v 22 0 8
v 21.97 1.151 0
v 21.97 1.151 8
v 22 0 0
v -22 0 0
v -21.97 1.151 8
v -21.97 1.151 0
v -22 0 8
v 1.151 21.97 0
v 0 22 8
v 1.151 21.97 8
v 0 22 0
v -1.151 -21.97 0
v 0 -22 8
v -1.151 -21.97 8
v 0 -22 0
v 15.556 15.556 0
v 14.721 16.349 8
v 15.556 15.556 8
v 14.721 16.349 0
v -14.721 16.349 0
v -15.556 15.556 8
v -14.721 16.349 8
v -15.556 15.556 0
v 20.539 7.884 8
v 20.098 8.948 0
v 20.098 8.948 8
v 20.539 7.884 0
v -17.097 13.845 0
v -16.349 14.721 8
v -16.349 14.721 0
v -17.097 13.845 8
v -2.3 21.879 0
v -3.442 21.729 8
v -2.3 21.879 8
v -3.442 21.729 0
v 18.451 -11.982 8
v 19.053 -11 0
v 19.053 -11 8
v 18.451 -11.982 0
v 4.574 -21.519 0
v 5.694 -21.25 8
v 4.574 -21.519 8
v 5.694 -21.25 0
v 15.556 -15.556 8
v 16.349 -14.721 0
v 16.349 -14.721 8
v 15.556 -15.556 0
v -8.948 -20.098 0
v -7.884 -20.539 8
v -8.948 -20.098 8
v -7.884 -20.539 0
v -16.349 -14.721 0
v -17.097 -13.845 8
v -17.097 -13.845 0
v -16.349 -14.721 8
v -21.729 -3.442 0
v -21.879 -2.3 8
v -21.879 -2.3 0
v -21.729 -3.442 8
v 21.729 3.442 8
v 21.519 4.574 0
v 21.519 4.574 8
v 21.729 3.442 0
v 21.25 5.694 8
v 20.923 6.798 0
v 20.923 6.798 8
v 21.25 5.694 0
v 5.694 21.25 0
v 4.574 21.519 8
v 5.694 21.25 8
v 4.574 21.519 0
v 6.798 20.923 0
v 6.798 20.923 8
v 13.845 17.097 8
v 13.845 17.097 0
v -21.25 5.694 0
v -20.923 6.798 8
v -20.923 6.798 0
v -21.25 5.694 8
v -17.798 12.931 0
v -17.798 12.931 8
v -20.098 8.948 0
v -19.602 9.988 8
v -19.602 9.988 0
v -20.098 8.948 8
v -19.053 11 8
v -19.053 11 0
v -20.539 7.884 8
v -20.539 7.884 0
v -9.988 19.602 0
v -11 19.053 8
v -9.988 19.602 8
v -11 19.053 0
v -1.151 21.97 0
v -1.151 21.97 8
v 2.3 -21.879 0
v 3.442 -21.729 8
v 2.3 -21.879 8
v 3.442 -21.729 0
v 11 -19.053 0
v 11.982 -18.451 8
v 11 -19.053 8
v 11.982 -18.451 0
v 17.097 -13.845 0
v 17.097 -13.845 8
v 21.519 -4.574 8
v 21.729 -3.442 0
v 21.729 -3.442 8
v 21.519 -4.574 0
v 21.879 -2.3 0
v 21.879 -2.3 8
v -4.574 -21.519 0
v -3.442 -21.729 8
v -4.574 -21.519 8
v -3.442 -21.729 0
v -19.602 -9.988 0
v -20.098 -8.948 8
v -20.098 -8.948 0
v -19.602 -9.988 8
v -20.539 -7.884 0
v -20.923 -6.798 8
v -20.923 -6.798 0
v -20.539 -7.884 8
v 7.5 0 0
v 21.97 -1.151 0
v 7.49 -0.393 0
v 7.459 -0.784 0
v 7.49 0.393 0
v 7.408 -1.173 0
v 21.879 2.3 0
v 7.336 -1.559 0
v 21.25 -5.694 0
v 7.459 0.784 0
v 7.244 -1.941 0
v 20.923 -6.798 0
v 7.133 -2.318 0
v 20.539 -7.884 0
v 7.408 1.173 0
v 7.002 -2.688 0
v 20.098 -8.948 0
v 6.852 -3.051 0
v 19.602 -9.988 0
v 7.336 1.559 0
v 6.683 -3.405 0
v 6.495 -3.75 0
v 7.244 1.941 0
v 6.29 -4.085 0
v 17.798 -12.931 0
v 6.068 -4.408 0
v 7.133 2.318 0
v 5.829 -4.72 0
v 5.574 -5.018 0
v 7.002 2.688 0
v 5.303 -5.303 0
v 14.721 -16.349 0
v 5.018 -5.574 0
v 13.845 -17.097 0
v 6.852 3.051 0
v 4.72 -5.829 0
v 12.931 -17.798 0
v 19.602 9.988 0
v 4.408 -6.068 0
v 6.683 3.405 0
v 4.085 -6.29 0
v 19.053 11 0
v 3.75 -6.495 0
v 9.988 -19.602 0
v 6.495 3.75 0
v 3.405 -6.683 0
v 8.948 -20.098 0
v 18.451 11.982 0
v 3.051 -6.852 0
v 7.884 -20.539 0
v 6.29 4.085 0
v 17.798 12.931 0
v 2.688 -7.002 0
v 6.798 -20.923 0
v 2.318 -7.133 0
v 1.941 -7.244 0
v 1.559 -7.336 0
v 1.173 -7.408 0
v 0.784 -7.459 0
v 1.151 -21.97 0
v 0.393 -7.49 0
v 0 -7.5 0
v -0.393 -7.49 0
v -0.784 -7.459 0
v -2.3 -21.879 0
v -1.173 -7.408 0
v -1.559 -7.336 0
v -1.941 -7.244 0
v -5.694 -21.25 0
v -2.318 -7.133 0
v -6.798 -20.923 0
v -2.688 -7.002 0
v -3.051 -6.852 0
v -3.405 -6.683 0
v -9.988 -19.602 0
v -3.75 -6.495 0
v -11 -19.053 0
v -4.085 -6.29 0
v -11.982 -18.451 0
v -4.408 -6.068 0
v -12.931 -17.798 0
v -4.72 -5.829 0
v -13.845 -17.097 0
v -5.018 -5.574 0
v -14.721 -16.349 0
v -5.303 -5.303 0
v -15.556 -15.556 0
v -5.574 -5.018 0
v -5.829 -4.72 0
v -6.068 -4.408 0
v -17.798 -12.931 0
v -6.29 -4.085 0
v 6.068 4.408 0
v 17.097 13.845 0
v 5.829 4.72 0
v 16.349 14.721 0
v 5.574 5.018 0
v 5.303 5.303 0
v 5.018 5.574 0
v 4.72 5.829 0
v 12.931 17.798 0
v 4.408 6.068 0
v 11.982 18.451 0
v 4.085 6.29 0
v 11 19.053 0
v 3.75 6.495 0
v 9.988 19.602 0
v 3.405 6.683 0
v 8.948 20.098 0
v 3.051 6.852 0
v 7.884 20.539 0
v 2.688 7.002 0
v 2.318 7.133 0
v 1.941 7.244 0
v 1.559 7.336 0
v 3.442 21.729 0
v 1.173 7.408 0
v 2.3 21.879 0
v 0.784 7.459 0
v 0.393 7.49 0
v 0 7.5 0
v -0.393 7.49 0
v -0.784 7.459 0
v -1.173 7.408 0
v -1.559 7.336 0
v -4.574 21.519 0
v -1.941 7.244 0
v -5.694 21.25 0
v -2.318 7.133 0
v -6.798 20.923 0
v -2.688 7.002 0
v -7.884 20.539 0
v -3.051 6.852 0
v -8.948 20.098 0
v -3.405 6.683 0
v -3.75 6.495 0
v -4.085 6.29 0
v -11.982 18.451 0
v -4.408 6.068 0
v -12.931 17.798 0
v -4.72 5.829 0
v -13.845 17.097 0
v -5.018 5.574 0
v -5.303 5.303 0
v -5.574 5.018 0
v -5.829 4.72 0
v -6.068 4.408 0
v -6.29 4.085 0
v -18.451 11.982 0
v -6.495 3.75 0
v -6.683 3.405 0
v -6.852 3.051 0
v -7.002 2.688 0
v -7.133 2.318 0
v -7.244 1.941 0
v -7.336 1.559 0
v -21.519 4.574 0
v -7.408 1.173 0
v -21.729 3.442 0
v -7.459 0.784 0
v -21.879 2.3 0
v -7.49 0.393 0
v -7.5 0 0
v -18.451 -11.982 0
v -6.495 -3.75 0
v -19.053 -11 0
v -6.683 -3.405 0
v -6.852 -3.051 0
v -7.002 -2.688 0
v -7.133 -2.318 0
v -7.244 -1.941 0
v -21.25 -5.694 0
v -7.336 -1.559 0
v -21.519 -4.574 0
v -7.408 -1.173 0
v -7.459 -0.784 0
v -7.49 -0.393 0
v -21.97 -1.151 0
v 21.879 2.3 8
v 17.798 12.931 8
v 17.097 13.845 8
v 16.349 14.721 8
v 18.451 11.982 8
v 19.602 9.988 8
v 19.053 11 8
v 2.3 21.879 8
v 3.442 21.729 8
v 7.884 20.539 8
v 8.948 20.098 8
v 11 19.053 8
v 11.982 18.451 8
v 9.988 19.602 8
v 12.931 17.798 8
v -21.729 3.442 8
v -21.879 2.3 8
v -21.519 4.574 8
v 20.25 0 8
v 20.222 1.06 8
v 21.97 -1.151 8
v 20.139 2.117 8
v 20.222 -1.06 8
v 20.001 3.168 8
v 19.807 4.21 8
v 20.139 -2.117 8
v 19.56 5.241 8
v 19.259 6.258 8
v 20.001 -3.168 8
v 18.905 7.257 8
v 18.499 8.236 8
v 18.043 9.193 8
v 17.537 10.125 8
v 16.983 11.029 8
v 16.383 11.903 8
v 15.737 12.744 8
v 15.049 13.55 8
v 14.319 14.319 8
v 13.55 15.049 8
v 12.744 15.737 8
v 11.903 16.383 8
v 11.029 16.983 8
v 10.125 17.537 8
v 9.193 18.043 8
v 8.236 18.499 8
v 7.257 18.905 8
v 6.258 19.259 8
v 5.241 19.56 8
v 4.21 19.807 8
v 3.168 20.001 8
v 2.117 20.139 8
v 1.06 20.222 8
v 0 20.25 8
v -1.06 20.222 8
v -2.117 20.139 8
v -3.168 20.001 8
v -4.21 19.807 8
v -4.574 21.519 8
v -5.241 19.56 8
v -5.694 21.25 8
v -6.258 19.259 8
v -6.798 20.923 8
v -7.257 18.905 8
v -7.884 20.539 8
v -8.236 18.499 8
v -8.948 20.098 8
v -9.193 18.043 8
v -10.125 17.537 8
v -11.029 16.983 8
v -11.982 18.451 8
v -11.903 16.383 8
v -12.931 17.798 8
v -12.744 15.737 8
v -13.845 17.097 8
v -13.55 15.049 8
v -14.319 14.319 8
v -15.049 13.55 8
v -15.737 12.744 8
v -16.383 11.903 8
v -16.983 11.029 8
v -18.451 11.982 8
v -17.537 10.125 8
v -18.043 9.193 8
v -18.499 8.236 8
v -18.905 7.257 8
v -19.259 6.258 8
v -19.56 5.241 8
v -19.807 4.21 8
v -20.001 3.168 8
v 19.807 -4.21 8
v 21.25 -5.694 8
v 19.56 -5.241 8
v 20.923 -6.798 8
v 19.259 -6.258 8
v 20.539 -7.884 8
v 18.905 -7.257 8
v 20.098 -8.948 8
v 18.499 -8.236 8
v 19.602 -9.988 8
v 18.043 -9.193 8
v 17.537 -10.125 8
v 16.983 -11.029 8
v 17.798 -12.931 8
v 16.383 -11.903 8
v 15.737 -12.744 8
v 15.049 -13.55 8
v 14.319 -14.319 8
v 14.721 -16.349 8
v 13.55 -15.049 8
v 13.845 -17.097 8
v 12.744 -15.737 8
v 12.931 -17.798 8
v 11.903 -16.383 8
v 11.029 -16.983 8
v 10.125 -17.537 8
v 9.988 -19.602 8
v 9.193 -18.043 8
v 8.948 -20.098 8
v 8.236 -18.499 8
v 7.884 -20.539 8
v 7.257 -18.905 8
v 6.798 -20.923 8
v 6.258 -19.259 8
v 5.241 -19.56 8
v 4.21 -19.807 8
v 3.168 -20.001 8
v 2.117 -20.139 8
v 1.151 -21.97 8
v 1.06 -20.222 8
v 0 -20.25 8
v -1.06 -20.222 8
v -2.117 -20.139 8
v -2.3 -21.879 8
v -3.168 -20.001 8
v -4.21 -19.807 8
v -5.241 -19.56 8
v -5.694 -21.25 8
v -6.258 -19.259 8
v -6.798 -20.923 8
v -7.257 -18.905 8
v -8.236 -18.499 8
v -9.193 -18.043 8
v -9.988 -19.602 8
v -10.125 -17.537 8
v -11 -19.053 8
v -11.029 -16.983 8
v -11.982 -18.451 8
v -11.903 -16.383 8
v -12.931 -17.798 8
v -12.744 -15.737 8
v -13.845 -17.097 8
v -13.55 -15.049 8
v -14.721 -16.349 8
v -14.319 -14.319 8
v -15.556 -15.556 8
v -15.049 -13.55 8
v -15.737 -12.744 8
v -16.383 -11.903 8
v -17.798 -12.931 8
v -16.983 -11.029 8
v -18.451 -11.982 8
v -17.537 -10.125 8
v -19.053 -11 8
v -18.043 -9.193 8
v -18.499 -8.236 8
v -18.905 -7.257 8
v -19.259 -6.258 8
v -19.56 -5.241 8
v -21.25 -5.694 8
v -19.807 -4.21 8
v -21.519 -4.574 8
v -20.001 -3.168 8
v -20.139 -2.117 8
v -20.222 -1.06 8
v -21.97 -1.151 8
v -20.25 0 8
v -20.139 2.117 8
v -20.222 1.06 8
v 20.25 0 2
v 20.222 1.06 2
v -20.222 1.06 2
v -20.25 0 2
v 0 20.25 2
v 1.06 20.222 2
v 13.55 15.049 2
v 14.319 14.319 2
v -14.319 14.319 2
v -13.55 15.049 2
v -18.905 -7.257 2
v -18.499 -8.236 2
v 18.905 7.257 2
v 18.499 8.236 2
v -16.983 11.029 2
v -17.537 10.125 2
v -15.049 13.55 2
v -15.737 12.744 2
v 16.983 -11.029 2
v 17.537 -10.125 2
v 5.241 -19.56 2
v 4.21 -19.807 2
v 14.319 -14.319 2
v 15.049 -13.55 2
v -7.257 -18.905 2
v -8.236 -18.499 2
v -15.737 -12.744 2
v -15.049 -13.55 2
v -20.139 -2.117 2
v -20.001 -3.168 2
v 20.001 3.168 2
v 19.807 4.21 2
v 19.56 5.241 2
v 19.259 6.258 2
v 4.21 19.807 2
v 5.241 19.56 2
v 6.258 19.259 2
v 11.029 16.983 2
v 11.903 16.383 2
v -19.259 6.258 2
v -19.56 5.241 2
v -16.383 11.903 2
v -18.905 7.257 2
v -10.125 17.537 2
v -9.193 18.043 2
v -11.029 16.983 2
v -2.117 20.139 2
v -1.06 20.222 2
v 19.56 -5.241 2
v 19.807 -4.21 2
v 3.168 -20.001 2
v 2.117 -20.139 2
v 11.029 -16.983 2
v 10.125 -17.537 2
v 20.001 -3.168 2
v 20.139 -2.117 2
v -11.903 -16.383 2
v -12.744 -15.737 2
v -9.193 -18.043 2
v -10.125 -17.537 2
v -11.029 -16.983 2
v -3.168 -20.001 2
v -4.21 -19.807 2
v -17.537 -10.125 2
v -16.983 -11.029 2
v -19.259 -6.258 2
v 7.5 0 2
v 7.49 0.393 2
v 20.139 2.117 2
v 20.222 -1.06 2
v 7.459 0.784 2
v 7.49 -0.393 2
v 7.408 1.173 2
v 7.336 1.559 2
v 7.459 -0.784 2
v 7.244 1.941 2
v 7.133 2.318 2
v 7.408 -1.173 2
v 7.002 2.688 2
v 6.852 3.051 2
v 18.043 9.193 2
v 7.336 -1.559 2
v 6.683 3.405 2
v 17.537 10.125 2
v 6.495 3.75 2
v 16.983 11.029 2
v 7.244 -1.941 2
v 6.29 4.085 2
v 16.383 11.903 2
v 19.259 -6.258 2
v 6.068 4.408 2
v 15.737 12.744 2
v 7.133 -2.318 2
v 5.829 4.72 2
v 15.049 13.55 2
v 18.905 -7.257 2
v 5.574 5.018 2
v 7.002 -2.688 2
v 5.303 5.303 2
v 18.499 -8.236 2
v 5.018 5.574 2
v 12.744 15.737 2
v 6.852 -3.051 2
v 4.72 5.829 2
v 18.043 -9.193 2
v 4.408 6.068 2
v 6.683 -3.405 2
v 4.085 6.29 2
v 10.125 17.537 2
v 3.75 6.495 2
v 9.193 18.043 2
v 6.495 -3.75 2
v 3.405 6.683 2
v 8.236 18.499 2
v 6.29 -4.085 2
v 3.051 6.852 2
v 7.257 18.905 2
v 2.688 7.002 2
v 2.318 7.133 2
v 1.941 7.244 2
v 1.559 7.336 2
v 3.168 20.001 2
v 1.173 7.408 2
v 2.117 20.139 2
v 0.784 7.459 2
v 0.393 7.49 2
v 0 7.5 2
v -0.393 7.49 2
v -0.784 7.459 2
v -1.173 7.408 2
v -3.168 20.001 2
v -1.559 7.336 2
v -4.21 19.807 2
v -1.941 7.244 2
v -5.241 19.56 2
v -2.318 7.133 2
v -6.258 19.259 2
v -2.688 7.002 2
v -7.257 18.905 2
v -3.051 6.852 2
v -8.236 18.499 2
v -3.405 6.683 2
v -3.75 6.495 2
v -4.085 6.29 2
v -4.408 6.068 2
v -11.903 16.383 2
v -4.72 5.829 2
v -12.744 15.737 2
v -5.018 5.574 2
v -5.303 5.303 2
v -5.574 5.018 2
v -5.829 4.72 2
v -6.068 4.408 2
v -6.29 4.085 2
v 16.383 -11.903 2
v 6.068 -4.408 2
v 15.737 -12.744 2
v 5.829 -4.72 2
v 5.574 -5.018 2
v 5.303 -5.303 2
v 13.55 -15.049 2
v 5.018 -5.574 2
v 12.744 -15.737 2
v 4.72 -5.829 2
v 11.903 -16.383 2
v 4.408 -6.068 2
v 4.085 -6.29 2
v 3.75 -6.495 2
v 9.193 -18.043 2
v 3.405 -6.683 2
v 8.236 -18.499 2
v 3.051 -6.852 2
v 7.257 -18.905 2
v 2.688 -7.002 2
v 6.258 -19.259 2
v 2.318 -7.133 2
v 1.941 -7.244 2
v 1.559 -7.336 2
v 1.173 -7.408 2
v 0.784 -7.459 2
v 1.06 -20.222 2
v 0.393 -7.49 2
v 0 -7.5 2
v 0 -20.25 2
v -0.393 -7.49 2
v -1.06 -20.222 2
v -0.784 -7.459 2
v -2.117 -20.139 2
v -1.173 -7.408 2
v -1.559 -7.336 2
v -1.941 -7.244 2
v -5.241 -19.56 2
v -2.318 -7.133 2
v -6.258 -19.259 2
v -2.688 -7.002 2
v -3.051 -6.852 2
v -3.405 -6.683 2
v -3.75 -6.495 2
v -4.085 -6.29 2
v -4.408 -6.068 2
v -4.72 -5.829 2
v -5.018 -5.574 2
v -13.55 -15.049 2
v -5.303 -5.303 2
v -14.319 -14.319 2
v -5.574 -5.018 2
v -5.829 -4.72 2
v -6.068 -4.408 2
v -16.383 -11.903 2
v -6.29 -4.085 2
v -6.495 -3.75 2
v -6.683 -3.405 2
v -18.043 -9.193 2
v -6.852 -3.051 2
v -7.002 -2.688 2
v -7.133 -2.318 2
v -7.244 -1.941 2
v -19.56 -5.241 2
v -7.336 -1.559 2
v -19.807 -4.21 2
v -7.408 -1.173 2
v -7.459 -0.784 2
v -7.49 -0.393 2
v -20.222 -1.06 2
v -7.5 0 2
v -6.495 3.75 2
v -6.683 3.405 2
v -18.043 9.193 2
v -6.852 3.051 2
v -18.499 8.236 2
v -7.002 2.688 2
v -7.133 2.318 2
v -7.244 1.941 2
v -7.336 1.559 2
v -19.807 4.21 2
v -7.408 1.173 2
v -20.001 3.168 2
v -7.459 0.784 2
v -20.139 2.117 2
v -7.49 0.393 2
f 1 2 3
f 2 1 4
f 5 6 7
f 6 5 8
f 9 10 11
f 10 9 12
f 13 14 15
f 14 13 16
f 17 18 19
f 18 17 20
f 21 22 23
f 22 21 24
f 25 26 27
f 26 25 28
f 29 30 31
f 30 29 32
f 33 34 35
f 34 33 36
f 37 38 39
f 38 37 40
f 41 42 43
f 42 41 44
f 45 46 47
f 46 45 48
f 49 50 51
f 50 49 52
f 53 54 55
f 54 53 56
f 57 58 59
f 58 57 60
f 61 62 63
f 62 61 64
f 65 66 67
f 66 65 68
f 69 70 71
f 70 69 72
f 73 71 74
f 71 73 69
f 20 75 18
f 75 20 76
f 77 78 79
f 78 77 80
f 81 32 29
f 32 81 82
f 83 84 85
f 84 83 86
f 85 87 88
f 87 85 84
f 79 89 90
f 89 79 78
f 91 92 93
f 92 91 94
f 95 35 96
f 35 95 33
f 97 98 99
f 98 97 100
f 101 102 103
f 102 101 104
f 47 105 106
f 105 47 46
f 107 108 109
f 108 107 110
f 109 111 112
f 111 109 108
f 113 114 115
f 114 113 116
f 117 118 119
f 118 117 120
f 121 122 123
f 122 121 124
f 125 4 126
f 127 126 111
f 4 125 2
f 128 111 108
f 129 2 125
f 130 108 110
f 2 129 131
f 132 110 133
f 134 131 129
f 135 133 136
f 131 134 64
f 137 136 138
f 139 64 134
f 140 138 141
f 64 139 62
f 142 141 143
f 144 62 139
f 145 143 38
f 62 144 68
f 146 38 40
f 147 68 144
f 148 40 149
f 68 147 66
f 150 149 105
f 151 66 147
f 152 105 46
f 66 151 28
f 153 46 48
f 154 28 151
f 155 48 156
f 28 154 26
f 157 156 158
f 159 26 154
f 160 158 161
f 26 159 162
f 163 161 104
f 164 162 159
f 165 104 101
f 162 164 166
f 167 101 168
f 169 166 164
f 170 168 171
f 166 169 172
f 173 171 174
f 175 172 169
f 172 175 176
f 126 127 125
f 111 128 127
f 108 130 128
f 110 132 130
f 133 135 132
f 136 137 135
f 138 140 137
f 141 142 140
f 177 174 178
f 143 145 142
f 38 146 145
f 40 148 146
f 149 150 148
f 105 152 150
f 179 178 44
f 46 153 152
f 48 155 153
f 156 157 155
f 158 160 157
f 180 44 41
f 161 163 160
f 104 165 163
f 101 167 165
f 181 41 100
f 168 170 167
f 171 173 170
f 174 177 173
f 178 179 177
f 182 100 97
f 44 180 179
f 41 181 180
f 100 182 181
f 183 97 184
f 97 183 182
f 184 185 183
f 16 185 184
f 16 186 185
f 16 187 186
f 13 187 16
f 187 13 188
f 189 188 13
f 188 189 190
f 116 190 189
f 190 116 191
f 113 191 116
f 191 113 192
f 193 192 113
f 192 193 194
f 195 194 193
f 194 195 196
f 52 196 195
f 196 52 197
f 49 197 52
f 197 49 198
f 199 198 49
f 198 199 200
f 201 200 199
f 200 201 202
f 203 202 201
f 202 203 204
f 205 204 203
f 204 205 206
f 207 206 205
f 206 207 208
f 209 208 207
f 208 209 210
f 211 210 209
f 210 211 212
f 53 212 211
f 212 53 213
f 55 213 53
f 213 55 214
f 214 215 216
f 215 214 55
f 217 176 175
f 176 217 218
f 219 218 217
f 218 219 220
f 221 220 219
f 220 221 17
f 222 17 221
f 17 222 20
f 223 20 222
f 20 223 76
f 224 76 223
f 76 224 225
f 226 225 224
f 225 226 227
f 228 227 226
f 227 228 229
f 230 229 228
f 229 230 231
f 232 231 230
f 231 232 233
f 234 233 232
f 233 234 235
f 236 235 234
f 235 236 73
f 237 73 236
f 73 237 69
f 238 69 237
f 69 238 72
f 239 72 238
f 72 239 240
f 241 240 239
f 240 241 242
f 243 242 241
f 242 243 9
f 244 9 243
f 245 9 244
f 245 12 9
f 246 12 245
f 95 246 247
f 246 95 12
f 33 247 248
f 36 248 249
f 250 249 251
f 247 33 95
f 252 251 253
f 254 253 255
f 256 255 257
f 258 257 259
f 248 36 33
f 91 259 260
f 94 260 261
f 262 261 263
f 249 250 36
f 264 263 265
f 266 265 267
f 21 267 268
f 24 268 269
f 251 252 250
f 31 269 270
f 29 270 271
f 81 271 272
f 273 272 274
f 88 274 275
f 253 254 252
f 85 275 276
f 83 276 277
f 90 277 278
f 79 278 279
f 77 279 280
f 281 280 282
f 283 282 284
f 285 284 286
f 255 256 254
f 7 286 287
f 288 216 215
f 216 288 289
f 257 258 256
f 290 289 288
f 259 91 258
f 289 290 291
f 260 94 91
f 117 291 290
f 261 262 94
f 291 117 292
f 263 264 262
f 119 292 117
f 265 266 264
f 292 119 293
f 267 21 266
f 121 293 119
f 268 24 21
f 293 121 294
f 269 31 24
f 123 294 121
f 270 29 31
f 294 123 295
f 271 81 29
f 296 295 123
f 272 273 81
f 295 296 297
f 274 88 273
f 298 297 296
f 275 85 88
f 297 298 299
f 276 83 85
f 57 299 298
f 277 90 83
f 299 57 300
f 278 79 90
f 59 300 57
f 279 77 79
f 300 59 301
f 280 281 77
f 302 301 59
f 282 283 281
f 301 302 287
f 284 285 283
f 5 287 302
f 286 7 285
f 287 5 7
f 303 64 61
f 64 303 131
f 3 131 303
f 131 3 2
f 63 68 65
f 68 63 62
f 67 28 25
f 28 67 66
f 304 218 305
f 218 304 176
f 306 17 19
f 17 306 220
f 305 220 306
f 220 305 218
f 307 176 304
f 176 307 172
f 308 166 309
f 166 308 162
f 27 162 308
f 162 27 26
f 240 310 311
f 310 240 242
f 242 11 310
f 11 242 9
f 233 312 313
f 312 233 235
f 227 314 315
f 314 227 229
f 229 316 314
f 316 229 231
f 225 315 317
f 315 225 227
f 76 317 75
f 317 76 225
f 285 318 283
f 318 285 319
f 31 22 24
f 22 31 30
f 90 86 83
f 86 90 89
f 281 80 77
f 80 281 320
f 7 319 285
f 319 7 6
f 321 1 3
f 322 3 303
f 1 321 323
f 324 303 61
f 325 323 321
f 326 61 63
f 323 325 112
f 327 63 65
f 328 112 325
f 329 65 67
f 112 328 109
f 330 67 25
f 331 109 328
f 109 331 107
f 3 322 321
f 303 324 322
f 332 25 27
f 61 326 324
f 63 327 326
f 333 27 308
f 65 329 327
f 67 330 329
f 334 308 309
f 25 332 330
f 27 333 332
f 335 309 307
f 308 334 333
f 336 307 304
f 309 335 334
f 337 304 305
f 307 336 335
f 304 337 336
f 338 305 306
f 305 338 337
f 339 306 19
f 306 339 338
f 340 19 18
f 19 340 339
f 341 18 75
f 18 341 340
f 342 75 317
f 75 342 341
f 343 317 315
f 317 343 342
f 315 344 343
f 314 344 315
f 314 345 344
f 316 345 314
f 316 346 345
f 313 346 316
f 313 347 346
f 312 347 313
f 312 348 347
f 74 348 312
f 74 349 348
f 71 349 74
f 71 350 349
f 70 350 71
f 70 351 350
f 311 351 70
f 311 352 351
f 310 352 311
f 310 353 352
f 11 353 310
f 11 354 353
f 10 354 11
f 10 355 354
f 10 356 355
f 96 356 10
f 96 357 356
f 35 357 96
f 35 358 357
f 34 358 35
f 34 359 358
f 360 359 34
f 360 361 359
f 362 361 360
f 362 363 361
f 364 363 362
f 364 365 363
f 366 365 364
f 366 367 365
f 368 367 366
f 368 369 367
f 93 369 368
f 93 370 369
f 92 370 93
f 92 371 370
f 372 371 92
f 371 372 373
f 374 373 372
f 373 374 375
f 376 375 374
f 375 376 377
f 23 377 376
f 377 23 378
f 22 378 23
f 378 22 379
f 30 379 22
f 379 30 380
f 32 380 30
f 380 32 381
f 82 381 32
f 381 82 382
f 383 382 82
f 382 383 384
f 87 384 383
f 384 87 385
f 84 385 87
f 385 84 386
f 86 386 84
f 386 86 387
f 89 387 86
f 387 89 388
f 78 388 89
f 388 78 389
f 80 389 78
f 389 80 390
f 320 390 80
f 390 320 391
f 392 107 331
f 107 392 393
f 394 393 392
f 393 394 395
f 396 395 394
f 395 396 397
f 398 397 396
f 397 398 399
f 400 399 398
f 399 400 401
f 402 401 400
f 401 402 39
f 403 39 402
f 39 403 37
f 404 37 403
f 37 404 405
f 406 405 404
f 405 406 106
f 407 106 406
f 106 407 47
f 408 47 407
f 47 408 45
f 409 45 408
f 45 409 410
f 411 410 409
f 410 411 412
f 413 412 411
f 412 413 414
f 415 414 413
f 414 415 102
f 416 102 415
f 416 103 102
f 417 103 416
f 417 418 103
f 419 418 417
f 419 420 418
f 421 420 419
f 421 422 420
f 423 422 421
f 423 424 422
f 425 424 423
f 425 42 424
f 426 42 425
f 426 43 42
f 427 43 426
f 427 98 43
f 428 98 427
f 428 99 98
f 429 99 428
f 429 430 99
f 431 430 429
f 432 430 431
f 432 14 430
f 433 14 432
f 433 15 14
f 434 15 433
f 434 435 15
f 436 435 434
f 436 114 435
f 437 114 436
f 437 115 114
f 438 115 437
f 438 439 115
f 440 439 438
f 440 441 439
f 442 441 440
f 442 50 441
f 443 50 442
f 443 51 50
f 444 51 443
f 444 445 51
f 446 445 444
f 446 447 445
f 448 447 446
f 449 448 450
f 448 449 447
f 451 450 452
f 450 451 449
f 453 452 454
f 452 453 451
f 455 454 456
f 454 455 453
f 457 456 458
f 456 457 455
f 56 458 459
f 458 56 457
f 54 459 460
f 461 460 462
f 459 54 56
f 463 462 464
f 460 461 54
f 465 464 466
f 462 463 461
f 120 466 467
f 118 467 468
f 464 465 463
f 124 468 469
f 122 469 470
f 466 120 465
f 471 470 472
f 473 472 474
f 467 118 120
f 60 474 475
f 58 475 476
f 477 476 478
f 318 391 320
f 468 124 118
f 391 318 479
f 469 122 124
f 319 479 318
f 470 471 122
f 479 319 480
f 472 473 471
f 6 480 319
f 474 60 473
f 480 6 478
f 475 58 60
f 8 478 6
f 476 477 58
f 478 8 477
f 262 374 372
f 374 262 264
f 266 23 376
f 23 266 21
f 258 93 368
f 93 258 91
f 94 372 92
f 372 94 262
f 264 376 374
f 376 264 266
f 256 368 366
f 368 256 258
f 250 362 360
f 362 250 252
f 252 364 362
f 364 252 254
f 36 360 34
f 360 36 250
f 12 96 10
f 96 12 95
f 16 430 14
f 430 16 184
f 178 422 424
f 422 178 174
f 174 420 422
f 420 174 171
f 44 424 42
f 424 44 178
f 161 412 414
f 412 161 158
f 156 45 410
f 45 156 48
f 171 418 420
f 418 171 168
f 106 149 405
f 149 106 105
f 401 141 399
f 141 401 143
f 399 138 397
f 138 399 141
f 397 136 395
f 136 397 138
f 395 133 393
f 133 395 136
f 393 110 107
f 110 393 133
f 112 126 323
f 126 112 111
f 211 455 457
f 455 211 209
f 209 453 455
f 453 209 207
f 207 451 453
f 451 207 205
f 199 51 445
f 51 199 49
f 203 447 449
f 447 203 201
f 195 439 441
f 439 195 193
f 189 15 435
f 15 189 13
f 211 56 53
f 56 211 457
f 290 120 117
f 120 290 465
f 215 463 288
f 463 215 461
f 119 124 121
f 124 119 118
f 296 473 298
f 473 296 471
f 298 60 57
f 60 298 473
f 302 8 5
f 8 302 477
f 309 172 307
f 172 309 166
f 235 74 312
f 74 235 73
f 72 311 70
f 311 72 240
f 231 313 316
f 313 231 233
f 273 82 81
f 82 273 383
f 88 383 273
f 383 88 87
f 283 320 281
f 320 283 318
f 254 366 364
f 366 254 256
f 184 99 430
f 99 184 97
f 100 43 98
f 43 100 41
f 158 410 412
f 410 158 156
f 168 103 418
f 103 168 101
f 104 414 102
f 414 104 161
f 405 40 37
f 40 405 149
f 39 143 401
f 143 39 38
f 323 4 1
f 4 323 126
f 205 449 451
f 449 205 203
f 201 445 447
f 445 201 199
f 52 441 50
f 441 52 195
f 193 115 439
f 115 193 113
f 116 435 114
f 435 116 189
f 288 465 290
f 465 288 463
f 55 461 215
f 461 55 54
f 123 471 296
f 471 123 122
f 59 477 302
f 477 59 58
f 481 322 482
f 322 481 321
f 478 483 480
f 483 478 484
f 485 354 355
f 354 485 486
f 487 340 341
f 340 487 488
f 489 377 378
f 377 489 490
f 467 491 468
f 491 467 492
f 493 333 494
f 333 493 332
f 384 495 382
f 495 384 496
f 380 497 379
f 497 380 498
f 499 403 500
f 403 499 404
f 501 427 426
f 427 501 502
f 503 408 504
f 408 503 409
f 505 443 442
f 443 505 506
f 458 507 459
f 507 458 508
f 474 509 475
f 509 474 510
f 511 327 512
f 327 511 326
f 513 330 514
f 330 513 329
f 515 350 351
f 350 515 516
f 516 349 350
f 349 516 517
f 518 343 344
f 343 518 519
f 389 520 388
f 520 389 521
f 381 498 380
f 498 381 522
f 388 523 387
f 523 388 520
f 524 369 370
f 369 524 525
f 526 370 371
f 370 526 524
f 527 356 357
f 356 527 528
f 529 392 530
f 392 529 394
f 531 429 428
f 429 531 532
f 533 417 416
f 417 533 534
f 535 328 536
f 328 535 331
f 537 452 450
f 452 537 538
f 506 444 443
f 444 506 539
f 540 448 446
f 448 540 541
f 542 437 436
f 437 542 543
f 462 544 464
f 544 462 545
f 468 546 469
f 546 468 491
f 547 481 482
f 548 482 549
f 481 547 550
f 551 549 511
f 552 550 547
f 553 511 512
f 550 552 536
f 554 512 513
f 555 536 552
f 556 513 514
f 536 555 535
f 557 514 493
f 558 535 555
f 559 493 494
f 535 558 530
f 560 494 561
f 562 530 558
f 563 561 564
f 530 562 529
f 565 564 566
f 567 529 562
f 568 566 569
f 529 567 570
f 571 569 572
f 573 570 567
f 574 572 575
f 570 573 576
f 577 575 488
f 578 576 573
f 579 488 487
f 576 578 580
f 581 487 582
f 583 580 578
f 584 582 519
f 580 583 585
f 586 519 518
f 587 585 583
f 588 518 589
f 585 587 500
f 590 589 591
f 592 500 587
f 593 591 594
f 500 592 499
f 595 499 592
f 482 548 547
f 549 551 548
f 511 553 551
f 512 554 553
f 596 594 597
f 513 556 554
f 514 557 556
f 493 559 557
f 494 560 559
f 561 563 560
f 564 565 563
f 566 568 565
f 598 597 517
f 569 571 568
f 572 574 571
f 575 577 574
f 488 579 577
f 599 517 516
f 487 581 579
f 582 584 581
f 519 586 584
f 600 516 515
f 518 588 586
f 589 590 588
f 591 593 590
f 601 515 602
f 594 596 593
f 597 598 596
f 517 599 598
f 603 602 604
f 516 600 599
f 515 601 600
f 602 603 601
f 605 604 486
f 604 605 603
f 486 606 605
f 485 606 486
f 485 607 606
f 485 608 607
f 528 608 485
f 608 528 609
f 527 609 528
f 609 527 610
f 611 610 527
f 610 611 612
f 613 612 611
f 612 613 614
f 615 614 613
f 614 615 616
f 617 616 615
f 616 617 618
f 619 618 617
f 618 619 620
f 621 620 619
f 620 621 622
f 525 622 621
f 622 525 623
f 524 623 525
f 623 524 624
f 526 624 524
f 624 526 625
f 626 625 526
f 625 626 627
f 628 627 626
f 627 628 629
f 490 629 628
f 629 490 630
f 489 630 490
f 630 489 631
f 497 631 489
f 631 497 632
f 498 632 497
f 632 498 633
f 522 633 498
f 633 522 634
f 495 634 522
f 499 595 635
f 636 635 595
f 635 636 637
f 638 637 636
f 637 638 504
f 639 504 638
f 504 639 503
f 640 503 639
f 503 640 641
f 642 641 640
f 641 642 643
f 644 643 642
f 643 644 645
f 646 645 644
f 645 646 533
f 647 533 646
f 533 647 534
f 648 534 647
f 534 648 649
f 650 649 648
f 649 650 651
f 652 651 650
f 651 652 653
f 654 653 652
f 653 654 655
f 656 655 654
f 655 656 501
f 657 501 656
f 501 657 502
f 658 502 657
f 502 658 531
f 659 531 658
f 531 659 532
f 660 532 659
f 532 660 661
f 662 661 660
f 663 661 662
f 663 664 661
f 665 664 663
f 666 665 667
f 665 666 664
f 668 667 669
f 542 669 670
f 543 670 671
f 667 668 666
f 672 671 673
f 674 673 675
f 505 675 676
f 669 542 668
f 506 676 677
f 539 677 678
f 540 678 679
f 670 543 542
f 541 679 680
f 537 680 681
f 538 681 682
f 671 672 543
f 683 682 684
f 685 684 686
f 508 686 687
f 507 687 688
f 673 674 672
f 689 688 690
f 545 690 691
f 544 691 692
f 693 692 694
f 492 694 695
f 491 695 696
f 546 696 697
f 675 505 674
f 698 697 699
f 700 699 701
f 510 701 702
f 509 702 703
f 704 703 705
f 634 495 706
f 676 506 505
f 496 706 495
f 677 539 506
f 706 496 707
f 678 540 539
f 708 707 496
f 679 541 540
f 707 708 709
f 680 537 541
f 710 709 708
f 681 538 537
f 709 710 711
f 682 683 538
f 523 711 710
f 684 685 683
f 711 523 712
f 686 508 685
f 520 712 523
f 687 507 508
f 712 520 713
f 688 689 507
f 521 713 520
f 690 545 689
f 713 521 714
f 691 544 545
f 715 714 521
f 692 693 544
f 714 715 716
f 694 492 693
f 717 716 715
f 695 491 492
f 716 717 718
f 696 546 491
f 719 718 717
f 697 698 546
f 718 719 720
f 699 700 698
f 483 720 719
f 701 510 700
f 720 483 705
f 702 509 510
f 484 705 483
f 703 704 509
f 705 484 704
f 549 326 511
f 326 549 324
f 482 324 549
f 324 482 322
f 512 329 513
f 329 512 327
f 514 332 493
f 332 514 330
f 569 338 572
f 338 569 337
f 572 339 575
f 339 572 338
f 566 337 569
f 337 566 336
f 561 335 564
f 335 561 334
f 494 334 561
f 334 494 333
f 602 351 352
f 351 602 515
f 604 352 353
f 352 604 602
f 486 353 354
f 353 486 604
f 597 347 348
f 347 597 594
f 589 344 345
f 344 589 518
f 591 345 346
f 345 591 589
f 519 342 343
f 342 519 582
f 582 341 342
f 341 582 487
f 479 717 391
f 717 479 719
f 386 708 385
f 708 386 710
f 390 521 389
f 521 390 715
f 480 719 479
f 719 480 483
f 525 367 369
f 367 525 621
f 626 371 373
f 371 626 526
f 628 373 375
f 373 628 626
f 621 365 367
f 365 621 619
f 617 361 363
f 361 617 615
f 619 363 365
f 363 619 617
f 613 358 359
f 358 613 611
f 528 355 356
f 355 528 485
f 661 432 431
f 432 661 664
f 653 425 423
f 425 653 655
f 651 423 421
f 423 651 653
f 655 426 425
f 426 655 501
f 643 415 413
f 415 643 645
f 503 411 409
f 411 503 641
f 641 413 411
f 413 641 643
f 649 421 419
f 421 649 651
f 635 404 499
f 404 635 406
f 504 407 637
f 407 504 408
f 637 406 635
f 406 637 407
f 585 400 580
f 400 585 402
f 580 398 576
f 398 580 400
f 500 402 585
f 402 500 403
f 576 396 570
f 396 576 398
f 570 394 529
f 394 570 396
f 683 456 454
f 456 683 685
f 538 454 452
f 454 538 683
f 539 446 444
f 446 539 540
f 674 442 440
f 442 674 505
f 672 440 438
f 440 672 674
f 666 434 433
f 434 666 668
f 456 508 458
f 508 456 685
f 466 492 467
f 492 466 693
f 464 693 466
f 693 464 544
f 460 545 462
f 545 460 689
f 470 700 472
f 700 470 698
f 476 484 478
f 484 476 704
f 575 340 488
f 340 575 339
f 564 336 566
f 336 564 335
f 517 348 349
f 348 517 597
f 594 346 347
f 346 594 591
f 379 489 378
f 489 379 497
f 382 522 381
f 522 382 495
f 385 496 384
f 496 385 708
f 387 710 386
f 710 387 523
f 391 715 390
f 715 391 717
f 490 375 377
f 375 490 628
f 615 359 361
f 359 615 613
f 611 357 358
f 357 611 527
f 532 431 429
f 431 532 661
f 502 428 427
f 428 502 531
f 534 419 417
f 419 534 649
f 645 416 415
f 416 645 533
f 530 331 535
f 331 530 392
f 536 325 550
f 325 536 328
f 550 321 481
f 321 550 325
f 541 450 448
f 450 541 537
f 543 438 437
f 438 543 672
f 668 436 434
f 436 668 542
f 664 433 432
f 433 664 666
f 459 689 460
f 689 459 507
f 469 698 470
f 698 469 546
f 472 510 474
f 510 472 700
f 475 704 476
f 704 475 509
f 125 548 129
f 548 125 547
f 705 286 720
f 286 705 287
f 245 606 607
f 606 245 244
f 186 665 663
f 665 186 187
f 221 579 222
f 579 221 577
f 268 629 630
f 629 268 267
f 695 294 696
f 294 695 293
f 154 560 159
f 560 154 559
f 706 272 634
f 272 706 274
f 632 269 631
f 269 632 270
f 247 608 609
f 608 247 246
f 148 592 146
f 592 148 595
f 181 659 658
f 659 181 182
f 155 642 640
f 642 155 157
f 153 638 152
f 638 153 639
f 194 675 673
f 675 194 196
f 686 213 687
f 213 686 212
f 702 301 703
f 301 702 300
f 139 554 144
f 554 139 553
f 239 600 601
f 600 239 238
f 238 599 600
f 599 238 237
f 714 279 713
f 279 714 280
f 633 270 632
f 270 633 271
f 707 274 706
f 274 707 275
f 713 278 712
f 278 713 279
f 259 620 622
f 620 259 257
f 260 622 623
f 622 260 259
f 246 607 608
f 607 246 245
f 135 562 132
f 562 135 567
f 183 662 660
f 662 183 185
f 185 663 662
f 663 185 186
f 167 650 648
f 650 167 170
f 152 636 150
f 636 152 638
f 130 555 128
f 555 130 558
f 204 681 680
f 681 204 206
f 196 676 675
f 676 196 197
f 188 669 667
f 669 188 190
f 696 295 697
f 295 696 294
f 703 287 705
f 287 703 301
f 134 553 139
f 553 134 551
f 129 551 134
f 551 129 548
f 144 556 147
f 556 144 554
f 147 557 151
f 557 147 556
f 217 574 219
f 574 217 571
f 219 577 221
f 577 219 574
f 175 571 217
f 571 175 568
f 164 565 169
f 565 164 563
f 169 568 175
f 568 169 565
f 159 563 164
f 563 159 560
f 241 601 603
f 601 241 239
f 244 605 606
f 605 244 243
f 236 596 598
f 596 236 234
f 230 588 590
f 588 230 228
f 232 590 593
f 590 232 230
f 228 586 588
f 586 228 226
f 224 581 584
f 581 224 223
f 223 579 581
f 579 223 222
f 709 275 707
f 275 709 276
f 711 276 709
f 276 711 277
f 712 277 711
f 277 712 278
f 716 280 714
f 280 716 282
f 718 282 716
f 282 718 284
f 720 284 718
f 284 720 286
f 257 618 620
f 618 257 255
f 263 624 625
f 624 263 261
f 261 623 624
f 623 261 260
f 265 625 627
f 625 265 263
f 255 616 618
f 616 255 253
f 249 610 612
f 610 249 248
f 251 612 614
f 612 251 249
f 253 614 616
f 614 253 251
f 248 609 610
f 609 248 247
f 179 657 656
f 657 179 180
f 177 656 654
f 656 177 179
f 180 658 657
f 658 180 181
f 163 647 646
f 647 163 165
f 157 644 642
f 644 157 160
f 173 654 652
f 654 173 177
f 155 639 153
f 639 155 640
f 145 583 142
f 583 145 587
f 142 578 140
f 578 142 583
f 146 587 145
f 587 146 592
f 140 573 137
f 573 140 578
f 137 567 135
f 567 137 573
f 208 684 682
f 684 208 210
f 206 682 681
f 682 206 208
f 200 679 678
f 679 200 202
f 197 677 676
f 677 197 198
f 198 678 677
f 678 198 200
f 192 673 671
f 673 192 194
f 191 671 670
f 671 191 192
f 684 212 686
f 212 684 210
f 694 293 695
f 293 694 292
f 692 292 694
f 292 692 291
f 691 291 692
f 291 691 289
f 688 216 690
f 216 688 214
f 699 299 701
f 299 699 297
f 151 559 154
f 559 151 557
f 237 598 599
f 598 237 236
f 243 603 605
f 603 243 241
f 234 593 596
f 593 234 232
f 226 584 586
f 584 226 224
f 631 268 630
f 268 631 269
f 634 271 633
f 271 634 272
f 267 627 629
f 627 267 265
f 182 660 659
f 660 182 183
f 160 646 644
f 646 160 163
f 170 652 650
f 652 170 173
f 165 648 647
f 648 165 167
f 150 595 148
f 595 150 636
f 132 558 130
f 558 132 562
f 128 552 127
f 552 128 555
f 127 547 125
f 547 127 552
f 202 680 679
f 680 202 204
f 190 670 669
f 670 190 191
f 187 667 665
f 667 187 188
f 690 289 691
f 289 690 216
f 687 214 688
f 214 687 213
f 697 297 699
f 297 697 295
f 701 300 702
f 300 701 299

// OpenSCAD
include <BOSL/constants.scad>
use <BOSL/shapes.scad>
use <BOSL/transforms.scad>
use <BOSL/masks.scad>

fileVersion = "1D";
  
$fn=120; //circle smoothness

main();
  
module main(){
  difference(){
    color("lime") cylinder(h=8, d=44); 
    color("green") up(2) cylinder(h=10, d=40.5);
    color("pink") cylinder(h=10, d=15);
  }
}  
